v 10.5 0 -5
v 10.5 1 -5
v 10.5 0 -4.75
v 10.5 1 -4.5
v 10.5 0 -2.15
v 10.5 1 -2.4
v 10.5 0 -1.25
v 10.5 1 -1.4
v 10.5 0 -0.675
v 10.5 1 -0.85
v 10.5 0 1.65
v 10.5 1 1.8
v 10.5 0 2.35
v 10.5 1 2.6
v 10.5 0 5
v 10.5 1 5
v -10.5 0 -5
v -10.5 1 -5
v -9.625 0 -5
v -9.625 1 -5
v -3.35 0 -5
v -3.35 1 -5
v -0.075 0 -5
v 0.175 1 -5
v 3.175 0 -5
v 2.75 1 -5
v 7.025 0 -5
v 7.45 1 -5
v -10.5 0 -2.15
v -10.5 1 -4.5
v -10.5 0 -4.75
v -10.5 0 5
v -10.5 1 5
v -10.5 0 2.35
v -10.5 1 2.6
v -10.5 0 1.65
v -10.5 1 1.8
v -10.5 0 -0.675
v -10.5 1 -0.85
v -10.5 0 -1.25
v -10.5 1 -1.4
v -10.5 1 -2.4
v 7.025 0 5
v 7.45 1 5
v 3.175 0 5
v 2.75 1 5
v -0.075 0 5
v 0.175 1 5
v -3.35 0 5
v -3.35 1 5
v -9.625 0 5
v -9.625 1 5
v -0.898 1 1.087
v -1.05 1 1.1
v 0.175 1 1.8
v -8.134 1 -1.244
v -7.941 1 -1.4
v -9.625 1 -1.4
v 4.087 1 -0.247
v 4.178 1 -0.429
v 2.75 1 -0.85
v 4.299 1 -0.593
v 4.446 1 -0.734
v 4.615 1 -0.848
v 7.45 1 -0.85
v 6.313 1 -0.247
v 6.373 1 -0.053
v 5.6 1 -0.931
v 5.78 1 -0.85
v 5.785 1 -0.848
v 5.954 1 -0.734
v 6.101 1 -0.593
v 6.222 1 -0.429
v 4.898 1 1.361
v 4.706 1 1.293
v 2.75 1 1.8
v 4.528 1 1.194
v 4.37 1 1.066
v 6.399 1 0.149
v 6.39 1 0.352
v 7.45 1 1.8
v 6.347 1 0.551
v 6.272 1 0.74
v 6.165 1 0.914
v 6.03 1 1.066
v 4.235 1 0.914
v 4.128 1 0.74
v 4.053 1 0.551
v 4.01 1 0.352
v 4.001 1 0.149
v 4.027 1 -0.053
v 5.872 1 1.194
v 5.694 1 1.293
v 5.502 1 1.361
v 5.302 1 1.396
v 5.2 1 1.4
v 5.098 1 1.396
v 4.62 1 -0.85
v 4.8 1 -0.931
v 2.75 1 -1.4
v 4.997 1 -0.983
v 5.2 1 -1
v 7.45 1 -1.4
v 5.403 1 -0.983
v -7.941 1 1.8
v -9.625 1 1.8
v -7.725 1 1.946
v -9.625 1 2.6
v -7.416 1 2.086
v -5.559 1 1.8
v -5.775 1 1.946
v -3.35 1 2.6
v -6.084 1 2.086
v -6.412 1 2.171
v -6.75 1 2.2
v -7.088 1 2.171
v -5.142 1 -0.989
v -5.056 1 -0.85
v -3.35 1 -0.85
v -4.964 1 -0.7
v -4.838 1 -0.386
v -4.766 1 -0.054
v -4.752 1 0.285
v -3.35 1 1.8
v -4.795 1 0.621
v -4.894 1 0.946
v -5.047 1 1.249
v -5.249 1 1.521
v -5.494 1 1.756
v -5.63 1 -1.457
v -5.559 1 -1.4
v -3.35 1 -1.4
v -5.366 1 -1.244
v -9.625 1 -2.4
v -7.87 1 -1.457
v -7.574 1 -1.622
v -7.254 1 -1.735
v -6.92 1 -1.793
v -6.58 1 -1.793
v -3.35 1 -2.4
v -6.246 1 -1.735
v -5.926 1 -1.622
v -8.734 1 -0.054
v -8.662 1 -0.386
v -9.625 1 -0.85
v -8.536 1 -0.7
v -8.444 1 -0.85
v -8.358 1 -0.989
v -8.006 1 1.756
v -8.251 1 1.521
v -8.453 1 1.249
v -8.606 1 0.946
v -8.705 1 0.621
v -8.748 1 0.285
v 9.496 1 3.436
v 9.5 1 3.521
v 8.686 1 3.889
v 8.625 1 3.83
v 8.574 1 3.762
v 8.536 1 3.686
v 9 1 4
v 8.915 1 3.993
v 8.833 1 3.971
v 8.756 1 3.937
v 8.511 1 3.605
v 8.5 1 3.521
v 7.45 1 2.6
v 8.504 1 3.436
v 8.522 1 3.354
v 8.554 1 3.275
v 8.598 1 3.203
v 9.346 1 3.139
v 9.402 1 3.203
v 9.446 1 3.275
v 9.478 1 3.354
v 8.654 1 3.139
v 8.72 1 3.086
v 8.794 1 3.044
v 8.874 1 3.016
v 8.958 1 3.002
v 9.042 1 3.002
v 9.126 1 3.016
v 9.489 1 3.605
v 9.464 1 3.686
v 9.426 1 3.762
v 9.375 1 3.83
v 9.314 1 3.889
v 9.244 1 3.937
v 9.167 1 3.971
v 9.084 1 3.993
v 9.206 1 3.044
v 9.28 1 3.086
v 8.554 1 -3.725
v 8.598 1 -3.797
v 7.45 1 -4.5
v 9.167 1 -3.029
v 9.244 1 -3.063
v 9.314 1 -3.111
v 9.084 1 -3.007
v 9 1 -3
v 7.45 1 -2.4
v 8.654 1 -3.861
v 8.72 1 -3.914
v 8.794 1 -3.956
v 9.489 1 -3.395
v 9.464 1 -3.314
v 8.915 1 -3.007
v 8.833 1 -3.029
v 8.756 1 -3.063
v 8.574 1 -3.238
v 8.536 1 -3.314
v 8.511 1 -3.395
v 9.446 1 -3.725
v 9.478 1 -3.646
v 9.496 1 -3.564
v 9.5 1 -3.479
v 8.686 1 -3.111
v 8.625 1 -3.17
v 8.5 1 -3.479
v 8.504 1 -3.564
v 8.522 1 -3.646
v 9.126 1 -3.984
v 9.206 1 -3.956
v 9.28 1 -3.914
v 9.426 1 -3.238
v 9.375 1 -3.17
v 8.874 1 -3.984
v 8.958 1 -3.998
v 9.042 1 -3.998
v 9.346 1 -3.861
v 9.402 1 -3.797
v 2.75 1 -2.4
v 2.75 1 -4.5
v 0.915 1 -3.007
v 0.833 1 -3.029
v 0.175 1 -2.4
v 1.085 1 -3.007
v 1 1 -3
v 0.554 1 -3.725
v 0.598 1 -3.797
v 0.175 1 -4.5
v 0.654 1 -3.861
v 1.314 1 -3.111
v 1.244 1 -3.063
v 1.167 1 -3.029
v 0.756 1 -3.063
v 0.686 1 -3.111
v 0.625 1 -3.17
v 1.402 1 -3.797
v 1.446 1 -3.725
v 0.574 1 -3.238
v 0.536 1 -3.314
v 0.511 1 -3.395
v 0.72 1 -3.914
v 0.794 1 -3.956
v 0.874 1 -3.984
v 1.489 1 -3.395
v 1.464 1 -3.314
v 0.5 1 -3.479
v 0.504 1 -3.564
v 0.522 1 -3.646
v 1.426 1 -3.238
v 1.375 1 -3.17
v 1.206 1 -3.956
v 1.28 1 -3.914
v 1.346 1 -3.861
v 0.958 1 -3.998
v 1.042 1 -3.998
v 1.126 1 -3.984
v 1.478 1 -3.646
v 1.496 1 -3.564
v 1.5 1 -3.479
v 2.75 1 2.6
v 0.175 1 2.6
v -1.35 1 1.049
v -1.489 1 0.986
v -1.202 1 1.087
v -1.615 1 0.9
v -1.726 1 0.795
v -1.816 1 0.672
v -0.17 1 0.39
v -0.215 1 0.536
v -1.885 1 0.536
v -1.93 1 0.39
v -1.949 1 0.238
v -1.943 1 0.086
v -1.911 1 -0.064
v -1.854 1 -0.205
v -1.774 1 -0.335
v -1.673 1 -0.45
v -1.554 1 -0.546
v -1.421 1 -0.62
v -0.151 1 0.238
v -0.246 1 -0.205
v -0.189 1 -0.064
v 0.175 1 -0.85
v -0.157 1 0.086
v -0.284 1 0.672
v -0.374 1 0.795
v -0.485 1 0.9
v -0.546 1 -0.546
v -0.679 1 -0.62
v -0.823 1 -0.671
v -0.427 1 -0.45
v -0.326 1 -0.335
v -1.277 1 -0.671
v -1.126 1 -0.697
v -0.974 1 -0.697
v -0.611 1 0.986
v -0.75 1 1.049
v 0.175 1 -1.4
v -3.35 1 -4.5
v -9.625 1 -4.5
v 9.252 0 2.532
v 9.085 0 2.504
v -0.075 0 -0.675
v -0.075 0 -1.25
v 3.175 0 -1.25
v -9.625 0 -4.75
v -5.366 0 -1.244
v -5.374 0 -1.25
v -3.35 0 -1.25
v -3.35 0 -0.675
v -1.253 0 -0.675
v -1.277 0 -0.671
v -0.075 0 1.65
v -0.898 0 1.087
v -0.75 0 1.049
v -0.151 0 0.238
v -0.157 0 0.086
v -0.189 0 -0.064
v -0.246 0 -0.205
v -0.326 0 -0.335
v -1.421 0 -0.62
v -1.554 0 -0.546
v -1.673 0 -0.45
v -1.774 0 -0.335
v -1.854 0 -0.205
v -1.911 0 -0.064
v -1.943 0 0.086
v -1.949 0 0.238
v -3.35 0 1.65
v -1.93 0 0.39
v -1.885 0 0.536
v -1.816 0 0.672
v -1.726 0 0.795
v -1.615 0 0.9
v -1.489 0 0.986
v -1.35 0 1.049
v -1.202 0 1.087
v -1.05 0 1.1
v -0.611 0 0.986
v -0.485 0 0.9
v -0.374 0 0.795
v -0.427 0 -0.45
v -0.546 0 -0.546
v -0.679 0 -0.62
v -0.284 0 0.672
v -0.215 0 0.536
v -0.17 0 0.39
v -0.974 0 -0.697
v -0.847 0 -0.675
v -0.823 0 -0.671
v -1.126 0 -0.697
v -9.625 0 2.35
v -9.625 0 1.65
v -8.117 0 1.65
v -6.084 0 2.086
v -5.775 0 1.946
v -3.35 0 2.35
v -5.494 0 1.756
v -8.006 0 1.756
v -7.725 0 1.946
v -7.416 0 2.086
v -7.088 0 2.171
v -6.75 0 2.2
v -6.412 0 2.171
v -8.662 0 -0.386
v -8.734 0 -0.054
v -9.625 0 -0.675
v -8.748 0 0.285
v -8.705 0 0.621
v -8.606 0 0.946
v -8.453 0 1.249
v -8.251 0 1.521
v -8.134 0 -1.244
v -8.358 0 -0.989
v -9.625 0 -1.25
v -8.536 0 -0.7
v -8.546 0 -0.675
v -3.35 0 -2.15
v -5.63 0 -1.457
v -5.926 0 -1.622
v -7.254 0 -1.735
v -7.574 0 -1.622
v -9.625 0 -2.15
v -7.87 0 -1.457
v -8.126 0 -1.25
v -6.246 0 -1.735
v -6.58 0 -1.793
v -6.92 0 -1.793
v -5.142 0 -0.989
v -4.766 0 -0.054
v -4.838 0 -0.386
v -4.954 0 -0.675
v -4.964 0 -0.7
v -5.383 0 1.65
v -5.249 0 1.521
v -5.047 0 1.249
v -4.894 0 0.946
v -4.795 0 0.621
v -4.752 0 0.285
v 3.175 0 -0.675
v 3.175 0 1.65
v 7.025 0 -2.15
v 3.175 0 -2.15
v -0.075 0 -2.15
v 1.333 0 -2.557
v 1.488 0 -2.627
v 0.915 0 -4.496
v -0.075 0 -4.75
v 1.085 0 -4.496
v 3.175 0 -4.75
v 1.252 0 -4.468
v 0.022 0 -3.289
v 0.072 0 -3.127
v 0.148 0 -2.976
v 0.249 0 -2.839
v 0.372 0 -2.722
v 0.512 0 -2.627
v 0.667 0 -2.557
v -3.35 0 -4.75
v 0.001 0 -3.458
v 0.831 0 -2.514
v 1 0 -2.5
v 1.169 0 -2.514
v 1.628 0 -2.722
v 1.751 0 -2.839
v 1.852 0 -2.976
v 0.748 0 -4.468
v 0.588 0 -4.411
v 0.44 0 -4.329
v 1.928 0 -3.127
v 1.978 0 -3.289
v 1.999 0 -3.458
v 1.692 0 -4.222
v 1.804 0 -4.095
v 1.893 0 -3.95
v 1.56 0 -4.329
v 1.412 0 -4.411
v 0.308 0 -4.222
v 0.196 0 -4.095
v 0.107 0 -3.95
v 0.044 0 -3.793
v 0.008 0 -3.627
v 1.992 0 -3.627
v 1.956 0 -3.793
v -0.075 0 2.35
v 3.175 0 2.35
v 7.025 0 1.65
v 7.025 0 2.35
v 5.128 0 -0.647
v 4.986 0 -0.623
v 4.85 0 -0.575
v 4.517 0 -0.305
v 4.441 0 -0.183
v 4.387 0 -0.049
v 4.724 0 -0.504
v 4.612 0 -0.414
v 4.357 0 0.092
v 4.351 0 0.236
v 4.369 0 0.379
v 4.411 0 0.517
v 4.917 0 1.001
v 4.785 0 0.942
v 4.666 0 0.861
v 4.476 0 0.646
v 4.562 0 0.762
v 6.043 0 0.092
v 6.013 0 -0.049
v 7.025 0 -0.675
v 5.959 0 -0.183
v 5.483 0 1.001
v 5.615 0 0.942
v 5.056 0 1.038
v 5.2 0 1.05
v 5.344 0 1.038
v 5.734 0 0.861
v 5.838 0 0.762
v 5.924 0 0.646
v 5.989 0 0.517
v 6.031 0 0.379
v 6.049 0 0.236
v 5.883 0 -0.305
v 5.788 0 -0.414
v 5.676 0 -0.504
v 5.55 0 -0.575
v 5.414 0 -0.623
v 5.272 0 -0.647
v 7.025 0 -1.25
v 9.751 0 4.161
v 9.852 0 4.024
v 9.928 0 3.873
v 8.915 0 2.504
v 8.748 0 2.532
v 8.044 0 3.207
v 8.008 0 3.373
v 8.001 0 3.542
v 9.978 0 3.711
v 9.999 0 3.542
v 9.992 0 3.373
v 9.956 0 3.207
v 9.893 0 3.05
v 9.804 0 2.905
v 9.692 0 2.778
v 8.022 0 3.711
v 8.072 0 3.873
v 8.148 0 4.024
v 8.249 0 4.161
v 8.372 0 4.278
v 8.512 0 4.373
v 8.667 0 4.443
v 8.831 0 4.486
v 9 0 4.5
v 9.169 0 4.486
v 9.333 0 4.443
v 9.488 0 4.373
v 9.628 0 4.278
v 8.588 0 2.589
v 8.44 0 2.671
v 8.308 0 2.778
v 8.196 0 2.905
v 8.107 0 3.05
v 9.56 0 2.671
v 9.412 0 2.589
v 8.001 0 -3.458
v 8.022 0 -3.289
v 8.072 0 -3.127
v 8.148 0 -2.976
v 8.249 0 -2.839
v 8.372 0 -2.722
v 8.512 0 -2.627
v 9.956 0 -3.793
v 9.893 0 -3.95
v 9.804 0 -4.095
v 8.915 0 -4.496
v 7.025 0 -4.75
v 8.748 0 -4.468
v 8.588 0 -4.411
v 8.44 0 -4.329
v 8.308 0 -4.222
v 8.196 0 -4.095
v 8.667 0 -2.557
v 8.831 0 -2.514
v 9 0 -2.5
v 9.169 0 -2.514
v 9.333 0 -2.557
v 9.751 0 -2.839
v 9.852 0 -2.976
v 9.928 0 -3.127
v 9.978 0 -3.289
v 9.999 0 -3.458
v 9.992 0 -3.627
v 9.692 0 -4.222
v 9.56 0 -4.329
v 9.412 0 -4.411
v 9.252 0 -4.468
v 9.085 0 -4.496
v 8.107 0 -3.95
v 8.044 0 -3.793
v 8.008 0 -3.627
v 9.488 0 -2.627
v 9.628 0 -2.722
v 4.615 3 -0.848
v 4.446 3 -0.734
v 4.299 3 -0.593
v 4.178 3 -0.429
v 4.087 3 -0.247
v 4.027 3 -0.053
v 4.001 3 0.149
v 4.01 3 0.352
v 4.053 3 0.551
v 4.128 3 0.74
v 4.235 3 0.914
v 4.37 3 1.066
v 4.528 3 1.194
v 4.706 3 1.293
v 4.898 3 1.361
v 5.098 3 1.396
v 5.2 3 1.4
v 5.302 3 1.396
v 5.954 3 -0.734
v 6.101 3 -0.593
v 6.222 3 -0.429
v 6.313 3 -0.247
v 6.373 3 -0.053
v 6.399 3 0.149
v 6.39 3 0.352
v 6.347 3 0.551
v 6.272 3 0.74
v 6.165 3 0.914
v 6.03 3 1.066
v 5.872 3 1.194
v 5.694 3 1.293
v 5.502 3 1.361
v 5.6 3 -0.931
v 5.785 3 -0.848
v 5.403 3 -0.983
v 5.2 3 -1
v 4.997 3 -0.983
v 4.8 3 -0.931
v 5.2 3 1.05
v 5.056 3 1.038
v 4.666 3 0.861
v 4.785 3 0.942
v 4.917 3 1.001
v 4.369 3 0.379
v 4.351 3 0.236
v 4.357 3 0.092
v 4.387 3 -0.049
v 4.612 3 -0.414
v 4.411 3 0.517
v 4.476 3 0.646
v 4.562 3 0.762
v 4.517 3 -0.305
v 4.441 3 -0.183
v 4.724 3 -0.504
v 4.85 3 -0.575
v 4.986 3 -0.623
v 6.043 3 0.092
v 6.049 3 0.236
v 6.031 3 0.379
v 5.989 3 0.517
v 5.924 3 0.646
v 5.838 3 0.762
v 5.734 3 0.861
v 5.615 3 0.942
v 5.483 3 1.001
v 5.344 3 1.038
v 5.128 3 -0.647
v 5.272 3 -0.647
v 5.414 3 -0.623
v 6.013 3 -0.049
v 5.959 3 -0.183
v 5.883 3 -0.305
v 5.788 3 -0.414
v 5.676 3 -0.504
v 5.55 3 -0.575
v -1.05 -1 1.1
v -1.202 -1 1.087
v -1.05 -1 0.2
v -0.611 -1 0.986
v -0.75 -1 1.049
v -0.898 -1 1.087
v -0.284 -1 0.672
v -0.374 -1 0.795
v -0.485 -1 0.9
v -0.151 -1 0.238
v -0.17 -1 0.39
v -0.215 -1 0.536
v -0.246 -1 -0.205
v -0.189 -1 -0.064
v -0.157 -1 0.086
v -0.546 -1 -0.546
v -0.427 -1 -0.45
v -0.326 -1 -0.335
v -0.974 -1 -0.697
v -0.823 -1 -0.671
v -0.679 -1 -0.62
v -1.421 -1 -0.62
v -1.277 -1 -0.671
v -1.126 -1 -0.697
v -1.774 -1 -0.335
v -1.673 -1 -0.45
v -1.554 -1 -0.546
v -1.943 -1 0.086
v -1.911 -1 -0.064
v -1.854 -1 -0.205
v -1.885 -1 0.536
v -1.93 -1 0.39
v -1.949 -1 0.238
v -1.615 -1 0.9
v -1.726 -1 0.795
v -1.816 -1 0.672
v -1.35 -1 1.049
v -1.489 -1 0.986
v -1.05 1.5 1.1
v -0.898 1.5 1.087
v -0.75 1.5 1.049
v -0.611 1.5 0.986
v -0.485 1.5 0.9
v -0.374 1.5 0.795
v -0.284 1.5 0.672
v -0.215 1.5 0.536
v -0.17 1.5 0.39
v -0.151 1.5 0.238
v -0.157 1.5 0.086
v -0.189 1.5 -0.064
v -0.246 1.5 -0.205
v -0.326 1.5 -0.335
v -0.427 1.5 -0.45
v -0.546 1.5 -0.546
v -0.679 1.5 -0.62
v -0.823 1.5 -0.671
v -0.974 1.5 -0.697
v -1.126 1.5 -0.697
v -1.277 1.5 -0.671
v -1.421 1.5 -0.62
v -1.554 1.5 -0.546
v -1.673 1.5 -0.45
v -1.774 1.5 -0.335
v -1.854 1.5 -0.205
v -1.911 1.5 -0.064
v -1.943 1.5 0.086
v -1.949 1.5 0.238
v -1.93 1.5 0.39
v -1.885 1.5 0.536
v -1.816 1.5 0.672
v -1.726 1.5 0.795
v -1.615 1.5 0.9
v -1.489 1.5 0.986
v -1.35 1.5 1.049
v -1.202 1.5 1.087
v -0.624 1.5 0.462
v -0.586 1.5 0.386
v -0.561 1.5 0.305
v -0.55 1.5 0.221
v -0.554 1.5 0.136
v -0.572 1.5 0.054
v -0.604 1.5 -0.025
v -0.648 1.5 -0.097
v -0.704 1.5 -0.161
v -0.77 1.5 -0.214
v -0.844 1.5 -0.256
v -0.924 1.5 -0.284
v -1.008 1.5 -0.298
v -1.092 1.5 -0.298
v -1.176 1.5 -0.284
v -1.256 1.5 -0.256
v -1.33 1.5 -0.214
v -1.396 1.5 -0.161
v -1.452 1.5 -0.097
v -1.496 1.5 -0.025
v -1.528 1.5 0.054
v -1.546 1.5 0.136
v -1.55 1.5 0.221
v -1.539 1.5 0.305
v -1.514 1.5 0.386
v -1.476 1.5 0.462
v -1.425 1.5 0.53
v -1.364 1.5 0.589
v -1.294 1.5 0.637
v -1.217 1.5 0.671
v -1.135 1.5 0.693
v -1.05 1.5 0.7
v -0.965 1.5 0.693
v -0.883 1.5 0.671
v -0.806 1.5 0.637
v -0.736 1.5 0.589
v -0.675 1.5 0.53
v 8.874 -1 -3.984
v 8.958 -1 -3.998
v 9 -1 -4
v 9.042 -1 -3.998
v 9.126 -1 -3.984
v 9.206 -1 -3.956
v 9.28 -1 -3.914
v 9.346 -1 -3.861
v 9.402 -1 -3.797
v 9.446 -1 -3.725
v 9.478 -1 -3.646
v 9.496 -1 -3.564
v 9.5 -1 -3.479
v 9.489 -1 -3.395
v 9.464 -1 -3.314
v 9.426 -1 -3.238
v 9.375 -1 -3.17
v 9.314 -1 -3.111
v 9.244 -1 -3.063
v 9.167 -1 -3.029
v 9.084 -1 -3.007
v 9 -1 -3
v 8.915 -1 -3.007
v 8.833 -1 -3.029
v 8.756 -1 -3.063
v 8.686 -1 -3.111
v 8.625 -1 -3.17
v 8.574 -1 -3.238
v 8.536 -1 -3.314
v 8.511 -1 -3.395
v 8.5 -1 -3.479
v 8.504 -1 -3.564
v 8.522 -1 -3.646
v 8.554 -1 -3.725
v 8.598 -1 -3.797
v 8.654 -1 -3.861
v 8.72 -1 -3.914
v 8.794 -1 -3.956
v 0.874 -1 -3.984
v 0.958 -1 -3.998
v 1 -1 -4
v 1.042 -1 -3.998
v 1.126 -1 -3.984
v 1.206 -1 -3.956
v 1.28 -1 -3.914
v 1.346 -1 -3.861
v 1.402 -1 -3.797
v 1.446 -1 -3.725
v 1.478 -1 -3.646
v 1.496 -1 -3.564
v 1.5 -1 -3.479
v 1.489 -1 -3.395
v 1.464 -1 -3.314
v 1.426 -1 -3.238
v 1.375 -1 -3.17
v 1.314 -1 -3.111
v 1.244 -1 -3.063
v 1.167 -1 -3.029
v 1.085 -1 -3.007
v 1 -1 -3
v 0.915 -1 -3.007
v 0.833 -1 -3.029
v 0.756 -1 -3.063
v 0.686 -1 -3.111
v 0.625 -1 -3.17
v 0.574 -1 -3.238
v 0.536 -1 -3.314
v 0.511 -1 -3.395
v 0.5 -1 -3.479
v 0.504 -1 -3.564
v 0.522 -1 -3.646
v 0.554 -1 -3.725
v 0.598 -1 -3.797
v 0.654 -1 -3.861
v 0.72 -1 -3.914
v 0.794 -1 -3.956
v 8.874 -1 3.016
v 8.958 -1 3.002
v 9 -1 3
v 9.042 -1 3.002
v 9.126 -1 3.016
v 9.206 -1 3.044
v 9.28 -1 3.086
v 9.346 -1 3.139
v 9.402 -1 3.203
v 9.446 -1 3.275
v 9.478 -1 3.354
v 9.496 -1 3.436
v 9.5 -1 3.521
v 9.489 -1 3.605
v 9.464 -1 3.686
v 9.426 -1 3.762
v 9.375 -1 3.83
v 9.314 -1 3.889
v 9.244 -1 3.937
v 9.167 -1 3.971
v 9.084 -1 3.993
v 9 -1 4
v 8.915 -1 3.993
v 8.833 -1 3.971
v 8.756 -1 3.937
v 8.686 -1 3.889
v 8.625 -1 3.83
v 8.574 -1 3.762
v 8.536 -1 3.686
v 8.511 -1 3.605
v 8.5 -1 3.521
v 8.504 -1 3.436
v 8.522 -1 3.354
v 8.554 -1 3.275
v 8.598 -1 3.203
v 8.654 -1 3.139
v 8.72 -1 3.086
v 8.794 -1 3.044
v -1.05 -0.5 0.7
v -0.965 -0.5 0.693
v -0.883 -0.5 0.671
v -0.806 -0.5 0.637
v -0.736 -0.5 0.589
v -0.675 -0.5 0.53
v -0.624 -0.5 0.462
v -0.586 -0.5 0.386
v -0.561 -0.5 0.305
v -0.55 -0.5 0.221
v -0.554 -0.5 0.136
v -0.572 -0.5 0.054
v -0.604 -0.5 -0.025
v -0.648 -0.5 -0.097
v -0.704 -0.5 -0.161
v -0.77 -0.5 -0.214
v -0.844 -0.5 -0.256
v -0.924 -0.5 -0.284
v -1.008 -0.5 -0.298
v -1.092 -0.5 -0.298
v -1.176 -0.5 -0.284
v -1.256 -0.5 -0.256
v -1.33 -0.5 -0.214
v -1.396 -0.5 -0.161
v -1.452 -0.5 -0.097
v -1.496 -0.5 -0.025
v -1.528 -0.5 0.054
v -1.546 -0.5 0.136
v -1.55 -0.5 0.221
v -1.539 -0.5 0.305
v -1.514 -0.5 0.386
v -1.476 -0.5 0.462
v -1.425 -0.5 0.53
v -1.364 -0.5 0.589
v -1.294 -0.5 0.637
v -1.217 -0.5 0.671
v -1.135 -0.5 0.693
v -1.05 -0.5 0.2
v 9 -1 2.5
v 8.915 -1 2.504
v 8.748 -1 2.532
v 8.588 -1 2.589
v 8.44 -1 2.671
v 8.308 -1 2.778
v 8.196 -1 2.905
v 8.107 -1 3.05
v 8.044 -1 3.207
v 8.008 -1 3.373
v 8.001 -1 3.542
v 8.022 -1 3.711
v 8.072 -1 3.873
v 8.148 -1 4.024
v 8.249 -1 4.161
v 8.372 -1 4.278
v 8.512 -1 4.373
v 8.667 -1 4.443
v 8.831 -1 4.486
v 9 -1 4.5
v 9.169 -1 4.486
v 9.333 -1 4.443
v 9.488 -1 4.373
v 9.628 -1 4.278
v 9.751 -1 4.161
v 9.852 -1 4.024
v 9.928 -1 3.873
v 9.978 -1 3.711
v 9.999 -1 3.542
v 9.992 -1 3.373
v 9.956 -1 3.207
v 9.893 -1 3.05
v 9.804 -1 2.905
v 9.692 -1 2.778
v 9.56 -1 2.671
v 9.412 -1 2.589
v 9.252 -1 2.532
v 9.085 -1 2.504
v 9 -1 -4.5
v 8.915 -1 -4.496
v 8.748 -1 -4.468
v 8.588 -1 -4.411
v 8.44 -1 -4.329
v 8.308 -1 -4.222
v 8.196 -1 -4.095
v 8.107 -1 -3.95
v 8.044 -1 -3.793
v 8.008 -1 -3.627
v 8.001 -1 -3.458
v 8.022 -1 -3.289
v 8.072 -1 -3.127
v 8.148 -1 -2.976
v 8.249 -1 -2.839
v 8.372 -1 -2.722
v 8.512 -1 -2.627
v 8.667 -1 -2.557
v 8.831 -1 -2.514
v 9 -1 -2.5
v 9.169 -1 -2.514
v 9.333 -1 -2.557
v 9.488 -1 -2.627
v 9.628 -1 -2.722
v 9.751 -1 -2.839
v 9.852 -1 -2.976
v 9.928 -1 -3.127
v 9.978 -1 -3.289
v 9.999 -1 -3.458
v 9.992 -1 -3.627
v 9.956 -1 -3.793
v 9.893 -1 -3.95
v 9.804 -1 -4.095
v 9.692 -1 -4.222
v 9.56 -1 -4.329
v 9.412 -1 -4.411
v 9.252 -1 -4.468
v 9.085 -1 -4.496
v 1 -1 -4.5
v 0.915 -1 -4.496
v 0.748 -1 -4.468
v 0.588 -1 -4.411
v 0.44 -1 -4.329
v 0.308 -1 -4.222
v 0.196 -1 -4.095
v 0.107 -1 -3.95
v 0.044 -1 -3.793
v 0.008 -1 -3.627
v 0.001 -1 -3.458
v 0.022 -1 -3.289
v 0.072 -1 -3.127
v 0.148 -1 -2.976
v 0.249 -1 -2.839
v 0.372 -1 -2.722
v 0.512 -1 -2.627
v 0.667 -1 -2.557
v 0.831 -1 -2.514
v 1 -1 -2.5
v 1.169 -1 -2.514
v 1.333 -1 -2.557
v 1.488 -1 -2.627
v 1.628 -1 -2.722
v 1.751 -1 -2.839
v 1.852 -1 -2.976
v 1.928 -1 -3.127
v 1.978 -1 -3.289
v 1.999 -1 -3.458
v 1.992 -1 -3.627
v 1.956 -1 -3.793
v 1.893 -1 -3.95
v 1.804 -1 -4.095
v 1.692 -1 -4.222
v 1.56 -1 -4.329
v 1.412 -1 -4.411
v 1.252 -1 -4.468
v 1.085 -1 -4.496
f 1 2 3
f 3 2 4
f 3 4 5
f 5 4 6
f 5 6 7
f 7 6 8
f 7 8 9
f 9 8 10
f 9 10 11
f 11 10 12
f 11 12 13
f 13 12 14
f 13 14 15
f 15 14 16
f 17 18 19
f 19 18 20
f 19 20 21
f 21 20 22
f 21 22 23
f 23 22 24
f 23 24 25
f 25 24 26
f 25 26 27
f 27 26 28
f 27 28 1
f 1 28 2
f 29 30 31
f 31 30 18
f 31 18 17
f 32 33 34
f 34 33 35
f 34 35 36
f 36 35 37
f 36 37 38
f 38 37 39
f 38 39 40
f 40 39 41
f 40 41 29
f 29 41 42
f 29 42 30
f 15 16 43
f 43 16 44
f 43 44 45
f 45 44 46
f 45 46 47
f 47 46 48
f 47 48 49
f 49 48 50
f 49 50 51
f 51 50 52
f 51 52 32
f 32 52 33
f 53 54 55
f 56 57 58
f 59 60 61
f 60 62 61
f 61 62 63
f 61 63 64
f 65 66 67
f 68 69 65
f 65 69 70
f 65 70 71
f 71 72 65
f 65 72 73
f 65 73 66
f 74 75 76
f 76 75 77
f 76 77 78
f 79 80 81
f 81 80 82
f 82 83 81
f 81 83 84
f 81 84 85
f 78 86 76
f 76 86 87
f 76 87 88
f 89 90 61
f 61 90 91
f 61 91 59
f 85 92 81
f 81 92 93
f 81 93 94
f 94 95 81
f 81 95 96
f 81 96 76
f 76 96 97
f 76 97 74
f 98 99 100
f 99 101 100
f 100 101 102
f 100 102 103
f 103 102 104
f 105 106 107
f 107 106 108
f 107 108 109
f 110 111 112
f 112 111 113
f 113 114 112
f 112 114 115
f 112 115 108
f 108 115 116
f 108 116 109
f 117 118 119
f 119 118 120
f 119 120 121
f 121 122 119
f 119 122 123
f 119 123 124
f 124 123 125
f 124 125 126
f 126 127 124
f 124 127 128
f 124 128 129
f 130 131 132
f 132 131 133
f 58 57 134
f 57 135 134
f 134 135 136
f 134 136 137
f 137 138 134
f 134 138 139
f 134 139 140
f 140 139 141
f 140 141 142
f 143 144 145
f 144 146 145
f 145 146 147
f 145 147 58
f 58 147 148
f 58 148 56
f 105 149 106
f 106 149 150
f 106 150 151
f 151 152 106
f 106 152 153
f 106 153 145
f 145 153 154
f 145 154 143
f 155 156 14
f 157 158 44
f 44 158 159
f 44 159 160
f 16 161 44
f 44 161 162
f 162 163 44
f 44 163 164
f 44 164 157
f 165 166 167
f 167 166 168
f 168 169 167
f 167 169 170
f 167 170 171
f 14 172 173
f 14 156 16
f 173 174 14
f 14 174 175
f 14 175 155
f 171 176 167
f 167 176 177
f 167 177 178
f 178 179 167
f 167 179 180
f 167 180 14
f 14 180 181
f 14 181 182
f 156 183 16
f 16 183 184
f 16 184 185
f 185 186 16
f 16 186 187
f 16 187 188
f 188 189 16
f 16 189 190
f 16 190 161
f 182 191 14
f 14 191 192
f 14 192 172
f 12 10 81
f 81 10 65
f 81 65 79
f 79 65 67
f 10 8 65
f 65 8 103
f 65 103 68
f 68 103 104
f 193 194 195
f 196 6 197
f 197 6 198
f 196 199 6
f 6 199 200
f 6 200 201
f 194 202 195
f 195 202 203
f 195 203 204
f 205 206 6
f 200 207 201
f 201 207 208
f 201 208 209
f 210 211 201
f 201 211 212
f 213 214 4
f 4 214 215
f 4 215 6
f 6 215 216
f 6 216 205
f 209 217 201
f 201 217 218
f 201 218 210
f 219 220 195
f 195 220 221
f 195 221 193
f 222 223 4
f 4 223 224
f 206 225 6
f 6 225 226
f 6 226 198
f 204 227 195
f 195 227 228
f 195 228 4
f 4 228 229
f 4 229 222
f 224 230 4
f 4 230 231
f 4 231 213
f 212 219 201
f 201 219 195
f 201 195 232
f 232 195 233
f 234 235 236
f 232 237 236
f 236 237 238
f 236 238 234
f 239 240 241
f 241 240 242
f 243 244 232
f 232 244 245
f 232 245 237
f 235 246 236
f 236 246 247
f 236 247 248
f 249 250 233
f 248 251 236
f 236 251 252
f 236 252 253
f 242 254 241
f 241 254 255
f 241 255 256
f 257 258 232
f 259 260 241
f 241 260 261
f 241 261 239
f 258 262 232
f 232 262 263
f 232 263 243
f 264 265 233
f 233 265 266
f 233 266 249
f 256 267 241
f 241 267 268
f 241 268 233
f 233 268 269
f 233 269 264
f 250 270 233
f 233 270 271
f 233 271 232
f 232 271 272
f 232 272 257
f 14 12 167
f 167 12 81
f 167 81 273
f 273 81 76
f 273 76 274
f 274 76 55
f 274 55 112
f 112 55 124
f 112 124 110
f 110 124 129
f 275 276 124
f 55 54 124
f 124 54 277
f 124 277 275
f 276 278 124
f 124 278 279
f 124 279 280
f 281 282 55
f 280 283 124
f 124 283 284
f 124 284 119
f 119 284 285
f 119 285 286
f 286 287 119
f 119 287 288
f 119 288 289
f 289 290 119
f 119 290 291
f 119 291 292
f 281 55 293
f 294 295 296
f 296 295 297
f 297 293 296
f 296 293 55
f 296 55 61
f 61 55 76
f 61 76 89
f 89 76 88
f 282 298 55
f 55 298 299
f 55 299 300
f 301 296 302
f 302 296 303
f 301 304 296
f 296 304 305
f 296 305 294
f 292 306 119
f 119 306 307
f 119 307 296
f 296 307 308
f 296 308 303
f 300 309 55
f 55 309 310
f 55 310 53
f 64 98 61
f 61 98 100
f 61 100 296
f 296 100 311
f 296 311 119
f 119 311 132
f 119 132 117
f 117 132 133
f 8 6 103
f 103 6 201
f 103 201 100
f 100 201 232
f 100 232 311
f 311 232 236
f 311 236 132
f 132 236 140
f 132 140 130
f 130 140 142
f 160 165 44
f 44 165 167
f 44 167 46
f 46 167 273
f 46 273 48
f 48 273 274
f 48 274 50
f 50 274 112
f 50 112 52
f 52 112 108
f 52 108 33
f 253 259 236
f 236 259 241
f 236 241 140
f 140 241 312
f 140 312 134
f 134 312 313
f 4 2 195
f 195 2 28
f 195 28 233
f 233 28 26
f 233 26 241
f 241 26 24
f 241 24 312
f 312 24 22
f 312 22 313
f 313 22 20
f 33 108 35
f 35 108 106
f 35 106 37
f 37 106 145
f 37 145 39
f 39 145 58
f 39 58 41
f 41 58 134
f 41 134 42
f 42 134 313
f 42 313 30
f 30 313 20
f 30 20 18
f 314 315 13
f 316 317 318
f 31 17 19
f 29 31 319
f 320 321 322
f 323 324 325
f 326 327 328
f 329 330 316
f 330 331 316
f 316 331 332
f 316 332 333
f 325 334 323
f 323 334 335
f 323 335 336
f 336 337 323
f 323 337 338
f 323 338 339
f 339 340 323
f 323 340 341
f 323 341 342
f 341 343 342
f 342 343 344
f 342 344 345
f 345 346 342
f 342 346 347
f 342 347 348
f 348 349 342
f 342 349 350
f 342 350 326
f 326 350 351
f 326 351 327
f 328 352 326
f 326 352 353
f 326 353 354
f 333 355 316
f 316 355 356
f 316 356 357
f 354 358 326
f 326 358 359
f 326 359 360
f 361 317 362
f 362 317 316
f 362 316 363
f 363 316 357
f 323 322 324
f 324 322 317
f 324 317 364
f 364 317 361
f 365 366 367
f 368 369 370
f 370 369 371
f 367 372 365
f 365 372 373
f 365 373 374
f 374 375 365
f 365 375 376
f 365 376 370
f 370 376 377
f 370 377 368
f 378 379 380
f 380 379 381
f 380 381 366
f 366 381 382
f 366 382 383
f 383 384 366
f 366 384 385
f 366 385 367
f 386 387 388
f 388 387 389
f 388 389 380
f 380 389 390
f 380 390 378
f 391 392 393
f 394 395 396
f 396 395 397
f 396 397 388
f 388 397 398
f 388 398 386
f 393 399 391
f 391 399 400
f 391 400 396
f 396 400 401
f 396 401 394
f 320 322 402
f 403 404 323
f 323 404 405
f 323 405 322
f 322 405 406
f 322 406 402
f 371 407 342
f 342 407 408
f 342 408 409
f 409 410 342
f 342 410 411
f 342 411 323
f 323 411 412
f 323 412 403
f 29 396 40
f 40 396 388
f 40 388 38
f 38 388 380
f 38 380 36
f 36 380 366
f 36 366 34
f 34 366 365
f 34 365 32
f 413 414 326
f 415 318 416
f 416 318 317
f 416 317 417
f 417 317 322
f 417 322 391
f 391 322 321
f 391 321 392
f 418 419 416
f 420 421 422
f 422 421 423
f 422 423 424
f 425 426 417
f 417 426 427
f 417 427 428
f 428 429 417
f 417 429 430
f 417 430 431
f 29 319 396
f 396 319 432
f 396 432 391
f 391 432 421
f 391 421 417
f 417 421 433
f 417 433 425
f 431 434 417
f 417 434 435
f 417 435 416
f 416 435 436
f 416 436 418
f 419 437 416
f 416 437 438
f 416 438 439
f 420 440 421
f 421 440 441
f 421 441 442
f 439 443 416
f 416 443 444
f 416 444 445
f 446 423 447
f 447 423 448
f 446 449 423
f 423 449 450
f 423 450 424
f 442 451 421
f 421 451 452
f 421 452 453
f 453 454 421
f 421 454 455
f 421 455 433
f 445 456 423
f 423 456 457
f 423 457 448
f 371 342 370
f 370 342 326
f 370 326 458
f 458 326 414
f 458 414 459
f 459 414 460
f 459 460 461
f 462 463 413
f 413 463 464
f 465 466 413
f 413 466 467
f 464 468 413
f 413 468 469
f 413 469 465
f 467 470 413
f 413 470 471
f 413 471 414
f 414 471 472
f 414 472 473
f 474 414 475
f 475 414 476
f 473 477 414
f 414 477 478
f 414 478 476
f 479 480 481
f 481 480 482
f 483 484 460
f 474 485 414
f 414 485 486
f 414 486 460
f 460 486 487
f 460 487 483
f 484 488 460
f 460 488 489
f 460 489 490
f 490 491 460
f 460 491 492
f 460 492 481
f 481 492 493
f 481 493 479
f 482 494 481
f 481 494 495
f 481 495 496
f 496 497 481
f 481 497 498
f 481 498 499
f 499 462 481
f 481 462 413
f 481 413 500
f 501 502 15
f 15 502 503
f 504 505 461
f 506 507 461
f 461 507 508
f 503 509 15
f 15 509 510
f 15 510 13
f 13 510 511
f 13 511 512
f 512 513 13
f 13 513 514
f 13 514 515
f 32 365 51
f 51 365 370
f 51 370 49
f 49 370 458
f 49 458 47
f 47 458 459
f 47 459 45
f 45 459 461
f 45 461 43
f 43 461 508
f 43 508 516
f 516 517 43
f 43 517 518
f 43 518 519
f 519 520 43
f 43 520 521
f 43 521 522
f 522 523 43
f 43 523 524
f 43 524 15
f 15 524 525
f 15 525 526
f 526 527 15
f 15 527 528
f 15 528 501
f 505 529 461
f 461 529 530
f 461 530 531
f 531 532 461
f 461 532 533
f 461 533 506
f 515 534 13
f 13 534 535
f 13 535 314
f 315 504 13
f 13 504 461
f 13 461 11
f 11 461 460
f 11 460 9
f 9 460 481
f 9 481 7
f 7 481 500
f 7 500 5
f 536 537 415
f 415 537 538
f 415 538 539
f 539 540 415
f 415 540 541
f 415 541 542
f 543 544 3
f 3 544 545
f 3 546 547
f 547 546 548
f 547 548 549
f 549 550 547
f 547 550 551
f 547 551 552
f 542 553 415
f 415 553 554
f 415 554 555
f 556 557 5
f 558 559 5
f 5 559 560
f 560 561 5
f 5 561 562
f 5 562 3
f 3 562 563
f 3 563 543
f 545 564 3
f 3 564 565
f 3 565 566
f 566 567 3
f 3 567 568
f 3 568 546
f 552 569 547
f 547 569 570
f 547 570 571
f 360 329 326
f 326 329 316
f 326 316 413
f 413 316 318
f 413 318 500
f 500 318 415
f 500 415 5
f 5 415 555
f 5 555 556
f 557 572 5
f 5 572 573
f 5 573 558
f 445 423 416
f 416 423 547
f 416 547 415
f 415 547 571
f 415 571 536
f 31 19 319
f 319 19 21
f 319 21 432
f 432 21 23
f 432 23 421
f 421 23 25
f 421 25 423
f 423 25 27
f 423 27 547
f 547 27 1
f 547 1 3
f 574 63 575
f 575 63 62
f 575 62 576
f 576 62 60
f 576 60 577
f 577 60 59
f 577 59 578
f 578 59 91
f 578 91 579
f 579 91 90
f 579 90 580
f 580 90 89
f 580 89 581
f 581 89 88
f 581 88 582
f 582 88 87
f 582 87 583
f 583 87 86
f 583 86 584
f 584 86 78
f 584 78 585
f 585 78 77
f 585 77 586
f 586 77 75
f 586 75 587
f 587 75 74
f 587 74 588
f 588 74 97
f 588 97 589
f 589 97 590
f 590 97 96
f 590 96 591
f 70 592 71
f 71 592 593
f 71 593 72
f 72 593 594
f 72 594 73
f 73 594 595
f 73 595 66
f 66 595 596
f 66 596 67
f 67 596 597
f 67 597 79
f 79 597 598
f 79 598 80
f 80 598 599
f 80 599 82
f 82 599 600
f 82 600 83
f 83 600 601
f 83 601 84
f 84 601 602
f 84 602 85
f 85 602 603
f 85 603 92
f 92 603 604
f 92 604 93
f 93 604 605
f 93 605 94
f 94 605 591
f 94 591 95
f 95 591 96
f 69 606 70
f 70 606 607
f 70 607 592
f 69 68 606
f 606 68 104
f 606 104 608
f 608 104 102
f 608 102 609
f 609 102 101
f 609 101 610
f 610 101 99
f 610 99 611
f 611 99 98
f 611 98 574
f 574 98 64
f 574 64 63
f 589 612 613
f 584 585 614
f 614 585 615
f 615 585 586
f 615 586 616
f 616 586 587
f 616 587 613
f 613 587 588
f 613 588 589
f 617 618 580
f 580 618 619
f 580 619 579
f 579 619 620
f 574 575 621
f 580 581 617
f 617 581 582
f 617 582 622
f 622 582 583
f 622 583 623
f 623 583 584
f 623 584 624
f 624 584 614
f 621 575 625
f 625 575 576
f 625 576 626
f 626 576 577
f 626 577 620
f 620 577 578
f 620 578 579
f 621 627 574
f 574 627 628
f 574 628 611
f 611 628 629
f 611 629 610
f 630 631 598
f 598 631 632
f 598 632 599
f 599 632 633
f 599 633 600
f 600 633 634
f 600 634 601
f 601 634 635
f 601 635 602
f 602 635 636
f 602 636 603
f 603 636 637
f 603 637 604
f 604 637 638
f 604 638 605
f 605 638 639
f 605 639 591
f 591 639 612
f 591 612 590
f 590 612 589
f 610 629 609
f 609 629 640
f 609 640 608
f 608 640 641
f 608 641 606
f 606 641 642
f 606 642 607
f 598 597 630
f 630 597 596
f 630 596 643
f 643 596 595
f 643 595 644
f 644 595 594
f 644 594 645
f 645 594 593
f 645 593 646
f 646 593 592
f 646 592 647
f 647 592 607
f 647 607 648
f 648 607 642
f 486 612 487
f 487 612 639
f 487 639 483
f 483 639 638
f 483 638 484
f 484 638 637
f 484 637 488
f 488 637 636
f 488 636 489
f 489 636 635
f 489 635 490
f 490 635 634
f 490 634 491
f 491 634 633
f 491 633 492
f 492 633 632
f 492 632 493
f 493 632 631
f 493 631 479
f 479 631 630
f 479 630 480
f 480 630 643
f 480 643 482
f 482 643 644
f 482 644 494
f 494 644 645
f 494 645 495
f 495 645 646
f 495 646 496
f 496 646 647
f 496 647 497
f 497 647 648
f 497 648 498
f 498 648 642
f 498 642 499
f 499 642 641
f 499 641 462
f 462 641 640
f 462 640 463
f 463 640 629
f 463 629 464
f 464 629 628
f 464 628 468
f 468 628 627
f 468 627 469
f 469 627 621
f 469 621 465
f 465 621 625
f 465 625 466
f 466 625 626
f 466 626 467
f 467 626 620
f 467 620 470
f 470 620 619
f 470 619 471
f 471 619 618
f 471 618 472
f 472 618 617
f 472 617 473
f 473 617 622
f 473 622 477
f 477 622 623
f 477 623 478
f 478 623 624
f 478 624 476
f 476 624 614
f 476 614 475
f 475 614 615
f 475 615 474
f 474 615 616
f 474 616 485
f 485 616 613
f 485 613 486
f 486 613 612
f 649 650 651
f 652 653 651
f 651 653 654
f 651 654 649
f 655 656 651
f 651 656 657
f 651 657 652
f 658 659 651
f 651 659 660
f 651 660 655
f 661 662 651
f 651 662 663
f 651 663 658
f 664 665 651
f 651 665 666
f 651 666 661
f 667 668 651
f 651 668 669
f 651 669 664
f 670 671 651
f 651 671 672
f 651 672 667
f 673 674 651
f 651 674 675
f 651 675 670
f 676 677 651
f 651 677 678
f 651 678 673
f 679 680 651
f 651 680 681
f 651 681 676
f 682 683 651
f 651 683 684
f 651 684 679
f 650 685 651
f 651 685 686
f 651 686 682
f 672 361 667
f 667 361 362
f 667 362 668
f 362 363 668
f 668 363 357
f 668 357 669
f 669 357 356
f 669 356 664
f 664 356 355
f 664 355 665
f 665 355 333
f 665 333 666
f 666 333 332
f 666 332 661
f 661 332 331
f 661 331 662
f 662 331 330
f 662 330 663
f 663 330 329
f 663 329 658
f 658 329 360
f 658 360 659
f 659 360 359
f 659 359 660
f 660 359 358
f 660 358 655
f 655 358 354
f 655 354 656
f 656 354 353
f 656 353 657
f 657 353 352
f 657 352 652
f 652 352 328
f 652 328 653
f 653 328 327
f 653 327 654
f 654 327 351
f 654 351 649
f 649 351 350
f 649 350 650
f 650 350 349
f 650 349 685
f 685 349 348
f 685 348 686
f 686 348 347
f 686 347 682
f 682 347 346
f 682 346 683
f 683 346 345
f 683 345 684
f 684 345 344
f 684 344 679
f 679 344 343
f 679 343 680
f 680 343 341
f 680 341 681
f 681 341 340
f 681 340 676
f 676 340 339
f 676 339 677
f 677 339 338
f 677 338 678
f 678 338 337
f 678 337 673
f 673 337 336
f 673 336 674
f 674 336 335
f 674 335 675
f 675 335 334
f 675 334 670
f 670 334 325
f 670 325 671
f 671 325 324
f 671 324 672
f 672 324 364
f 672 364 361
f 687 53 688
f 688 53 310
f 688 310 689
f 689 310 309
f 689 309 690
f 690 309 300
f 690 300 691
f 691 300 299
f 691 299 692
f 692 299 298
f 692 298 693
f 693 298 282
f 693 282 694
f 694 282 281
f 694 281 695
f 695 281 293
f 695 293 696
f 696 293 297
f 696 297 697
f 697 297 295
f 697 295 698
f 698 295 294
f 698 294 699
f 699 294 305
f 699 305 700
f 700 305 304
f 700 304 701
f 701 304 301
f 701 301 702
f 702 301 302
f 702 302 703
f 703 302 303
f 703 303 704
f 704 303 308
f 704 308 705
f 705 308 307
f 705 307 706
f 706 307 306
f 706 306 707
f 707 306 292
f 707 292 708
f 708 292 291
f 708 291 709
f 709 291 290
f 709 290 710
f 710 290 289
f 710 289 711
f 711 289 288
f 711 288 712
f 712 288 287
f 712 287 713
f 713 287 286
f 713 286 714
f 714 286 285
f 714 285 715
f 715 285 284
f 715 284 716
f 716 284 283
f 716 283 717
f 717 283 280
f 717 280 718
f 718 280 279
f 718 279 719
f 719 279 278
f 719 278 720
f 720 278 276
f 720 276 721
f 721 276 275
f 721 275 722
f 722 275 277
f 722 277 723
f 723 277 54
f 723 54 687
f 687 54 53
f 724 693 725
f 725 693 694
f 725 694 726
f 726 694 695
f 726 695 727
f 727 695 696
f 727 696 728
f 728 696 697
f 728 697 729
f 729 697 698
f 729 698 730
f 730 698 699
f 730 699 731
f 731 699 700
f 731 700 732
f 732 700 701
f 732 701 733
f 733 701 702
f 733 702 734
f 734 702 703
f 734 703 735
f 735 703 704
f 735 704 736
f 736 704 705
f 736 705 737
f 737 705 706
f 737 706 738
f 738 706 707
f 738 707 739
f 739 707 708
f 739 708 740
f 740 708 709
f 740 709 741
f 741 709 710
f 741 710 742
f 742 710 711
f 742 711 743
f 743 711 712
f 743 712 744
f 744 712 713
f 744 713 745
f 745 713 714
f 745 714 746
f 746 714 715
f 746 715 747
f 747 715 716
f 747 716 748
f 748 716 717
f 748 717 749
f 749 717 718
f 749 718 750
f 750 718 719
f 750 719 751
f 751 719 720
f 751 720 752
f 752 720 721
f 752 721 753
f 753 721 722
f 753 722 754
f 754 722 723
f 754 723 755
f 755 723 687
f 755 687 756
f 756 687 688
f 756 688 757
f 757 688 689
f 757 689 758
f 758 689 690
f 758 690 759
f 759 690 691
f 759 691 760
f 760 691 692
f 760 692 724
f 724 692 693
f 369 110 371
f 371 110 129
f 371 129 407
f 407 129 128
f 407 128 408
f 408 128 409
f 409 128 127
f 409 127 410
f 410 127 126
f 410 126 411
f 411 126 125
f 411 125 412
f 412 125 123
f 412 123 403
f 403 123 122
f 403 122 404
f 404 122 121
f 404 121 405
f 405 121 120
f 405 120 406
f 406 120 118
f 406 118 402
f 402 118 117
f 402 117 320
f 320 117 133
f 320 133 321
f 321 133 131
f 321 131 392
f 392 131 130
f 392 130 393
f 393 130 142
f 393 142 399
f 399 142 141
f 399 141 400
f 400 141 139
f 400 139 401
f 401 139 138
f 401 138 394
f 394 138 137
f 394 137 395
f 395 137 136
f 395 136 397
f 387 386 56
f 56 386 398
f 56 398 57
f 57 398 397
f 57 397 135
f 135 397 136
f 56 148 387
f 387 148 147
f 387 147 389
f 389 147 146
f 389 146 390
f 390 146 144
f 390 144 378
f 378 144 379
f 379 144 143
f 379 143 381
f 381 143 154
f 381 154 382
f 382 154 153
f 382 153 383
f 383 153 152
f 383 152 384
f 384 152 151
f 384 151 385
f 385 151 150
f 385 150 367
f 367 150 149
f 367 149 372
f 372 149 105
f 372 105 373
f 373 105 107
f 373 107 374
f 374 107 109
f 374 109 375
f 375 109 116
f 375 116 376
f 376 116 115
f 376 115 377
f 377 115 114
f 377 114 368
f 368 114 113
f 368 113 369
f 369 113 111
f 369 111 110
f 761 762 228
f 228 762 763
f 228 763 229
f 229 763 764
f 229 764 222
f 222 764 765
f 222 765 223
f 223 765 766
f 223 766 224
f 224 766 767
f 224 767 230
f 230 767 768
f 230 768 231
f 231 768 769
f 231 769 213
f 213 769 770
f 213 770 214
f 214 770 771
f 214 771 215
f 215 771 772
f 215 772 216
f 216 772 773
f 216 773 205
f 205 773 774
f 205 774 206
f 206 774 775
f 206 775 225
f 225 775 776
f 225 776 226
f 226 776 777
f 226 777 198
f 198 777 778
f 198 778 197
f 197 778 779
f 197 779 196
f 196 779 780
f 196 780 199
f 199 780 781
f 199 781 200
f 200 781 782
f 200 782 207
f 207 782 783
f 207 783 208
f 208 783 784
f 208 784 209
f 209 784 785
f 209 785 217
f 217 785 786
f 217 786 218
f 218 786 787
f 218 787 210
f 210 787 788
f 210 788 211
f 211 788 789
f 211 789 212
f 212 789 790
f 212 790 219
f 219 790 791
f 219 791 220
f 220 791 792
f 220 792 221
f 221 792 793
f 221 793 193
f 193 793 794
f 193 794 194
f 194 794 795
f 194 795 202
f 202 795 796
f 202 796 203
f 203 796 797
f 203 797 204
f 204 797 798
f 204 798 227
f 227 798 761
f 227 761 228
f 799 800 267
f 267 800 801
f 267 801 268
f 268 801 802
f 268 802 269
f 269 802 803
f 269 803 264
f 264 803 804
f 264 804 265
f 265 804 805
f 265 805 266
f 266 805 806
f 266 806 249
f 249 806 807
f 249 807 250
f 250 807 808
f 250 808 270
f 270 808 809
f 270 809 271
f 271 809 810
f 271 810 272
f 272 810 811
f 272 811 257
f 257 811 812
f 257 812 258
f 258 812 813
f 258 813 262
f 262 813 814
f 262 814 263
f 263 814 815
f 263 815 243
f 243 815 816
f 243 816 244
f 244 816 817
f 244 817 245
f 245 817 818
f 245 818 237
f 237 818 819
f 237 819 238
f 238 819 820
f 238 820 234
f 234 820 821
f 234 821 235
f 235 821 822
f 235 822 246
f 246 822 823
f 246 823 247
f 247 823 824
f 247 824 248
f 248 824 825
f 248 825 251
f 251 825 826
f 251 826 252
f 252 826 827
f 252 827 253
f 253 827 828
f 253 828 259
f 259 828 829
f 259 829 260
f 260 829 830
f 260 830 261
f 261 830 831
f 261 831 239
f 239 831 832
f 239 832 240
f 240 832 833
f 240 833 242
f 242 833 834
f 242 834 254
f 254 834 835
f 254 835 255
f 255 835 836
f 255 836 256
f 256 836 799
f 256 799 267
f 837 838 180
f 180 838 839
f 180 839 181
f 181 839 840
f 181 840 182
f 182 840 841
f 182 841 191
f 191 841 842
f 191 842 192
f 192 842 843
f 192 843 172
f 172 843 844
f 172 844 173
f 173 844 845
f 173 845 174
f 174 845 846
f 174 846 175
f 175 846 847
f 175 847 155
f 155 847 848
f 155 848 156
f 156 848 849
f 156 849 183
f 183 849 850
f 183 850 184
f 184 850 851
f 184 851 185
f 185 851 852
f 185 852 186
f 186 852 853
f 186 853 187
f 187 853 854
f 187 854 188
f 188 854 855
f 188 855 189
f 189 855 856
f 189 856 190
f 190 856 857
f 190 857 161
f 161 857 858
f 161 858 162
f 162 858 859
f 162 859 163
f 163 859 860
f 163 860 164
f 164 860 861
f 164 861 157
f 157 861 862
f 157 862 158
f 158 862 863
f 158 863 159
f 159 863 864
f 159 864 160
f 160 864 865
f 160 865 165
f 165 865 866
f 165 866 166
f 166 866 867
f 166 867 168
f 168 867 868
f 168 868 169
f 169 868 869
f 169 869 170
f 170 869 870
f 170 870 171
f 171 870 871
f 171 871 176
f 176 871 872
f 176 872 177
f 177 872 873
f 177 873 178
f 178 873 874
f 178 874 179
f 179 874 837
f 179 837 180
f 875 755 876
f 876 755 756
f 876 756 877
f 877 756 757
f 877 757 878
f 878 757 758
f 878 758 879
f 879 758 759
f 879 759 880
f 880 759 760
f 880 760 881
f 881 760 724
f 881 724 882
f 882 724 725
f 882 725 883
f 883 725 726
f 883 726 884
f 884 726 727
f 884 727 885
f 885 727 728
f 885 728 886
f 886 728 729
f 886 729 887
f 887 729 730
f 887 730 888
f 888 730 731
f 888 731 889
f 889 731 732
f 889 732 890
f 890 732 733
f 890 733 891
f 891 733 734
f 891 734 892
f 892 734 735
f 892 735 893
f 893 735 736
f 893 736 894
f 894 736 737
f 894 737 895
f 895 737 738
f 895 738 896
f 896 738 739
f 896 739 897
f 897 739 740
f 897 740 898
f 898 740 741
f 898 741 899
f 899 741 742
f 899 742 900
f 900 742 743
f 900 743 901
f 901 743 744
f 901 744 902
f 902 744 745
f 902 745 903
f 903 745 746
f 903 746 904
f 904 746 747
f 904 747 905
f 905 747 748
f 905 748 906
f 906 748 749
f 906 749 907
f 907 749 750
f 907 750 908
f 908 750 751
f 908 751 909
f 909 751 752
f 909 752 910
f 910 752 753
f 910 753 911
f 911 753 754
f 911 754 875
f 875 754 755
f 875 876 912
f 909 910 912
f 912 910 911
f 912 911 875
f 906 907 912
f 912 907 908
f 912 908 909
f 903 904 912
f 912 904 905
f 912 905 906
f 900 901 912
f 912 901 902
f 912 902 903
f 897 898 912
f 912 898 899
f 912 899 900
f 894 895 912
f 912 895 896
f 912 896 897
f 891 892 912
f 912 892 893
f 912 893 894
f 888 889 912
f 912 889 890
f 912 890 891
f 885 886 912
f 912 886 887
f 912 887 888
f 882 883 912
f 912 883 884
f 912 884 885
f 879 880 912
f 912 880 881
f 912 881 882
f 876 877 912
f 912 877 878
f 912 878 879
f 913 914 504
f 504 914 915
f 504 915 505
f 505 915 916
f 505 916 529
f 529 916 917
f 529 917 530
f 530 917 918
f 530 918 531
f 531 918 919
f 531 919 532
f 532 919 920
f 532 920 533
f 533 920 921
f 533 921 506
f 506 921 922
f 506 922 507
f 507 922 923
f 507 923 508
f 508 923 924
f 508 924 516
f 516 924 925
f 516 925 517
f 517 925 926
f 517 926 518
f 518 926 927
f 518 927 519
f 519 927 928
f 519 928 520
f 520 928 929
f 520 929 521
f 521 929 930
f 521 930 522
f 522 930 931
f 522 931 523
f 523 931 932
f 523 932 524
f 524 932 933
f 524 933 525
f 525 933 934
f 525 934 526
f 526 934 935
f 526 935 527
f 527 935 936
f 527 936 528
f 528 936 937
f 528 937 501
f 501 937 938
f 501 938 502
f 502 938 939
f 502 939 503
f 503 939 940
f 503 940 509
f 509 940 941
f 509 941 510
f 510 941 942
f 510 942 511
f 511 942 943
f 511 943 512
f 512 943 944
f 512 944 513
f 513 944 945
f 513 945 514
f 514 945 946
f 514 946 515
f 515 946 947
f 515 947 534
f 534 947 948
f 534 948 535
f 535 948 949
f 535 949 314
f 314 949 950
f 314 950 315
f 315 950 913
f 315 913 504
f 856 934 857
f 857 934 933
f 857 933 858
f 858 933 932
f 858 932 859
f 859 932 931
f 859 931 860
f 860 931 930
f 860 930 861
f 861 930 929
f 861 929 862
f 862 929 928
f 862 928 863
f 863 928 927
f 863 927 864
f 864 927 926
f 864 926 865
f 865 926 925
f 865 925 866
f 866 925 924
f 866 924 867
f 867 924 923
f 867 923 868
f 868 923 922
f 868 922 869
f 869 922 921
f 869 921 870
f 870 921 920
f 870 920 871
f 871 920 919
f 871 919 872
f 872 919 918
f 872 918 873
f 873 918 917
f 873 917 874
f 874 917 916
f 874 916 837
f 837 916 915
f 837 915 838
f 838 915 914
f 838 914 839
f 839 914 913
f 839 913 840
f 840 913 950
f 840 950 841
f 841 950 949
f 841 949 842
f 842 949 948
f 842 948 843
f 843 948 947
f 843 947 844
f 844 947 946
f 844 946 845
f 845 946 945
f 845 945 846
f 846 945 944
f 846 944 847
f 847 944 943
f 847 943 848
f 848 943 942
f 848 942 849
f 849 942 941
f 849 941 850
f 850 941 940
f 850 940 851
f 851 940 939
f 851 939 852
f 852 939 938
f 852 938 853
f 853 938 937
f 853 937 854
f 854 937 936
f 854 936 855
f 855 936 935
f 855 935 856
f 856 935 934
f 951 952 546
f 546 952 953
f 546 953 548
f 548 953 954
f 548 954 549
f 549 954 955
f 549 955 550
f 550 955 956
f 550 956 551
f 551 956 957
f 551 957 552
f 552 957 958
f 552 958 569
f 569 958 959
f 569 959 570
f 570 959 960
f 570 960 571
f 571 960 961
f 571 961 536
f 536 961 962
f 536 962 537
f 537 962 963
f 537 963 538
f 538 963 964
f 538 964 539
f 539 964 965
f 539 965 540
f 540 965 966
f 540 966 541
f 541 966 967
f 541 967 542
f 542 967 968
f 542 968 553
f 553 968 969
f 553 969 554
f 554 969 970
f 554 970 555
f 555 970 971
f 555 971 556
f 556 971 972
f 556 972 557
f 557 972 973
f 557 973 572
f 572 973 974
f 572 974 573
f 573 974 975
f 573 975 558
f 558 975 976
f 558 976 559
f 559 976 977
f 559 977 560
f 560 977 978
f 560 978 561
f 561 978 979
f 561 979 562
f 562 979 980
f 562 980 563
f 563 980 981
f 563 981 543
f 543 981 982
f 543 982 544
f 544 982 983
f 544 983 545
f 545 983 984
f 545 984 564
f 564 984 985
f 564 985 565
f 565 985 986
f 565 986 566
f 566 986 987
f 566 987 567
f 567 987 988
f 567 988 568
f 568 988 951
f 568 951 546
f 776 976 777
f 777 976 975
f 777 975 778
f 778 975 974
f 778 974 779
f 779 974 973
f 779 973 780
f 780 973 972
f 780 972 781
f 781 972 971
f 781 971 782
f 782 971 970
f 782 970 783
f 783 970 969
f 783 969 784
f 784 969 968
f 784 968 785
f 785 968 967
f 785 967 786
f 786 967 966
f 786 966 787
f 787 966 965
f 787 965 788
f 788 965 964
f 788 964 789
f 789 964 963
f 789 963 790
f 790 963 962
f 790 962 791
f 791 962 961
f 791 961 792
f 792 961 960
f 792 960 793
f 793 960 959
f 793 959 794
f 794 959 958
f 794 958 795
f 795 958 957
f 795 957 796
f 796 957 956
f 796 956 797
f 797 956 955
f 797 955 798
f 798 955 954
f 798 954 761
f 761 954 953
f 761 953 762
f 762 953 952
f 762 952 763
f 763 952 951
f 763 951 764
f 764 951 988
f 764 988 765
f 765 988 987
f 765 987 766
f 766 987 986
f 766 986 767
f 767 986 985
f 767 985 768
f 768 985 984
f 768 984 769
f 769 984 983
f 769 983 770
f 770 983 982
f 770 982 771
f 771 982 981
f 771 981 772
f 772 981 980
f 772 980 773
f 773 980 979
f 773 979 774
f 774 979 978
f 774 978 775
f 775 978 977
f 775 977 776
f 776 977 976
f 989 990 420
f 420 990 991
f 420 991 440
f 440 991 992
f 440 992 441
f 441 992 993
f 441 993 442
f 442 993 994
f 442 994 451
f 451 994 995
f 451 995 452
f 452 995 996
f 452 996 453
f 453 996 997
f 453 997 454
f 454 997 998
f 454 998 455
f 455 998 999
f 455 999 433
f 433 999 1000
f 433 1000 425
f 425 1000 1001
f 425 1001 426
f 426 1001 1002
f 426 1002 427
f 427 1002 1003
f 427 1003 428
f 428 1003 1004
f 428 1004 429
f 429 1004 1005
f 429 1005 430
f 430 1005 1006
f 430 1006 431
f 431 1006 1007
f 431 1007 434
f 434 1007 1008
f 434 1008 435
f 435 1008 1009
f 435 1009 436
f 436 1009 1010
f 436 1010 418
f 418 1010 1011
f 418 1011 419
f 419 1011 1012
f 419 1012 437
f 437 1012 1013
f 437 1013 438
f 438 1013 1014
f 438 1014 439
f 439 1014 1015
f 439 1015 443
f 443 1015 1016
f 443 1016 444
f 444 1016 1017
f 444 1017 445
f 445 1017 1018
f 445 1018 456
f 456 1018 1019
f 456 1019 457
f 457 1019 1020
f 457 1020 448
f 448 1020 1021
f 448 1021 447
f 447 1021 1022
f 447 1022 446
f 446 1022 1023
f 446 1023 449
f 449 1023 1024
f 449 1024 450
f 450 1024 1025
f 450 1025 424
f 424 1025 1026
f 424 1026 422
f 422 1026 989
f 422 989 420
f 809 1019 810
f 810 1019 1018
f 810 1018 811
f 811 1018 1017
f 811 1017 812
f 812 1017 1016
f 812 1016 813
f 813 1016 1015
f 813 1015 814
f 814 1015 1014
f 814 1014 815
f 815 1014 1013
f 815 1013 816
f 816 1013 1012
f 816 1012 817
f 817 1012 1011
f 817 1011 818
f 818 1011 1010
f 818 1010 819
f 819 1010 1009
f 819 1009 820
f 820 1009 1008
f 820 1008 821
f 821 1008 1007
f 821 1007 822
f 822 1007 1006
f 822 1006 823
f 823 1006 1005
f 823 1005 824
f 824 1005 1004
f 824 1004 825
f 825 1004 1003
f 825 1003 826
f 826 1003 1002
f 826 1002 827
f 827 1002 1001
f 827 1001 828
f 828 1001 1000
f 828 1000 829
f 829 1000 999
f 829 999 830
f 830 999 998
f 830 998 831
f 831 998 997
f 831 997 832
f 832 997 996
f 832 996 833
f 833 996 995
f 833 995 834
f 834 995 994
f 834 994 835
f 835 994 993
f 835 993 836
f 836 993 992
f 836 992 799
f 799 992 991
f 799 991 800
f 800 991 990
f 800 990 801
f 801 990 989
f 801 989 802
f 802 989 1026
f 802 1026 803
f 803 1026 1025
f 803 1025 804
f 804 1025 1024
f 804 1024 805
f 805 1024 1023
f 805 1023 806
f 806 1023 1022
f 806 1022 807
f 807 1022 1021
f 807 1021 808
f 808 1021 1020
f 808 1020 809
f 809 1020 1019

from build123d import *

# Parameters (mm, degrees)
SKETCH_1_W           = 21
SKETCH_1_H           = 10
EXTRUDE_1_DEPTH      = 1
SKETCH_2_R           = 1.2
EXTRUDE_2_DEPTH      = 2
SKETCH_3_R           = 0.85
CUT_EXTRUDE_2_DEPTH  = 3
EXTRUDE_3_DEPTH      = 0.5
EXTRUDE_3_DEPTH_BACK = 2
SKETCH_5_R           = 0.9
SKETCH_7_R           = 2
CUT_EXTRUDE_4_DEPTH  = 1
SKETCH_8_R           = 0.5
CUT_EXTRUDE_5_DEPTH  = 1
SKETCH_9_R           = 0.5
CUT_EXTRUDE_6_DEPTH  = 2
SKETCH_10_R          = 1
EXTRUDE_4_DEPTH      = 1
CUT_EXTRUDE_START    = -1
SKETCH_11_R          = 0.5
CUT_EXTRUDE_7_DEPTH  = 1


with BuildPart() as part:
    # 草图1 → 凸台-拉伸1 (new body)
    with BuildSketch(Plane(origin=(0, 0, 0), x_dir=(1, 0, 0), z_dir=(0, 1, 0))):
        Rectangle(SKETCH_1_W, SKETCH_1_H)
    extrude(amount=EXTRUDE_1_DEPTH)

    # 草图2 → 凸台-拉伸2 (add)
    with BuildSketch(Plane(origin=(0, 1, 0), x_dir=(1, 0, 0), z_dir=(0, 1, 0))):
        with Locations(Location((5.2, -0.2, 0), (0, 0, 270))):
            Circle(SKETCH_2_R)
    extrude(amount=EXTRUDE_2_DEPTH)

    # 草图3 → 切除-拉伸2 (cut)
    with BuildSketch(Plane(origin=(0, 3, 0), x_dir=(1, 0, 0), z_dir=(0, 1, 0))):
        with Locations(Location((5.2, -0.2, 0), (0, 0, 270))):
            Circle(SKETCH_3_R)
    extrude(amount=-CUT_EXTRUDE_2_DEPTH, mode=Mode.SUBTRACT)

    # 草图5 → 凸台-拉伸3 (add, two sides: drawn at the far end of the back side and taken through both)
    with BuildSketch(Plane(origin=(0, 1, 0), x_dir=(1, 0, 0), z_dir=(0, 1, 0)).offset(-EXTRUDE_3_DEPTH_BACK)):
        with Locations(Location((-1.05, -0.2, 0), (0, 0, 270))):
            Circle(SKETCH_5_R)
    extrude(amount=EXTRUDE_3_DEPTH + EXTRUDE_3_DEPTH_BACK)

    # 草图7 → 切除-拉伸4 (cut)
    with BuildSketch(Plane(origin=(0, 1, 0), x_dir=(1, 0, 0), z_dir=(0, 1, 0))):
        with Locations(Location((-6.75, -0.2, 0), (0, 0, 270))):
            Circle(SKETCH_7_R)
    extrude(amount=-CUT_EXTRUDE_4_DEPTH, mode=Mode.SUBTRACT)

    # 草图8 → 切除-拉伸5 (cut)
    with BuildSketch(Plane(origin=(0, 1, 0), x_dir=(1, 0, 0), z_dir=(0, 1, 0))):
        with Locations(Location((9, 3.5, 0), (0, 0, 270))):
            Circle(SKETCH_8_R)
        with Locations(Location((1, 3.5, 0), (0, 0, 270))):
            Circle(SKETCH_8_R)
        with Locations(Location((9, -3.5, 0), (0, 0, 270))):
            Circle(SKETCH_8_R)
    extrude(amount=-CUT_EXTRUDE_5_DEPTH, mode=Mode.SUBTRACT)

    # 草图9 → 切除-拉伸6 (cut)
    with BuildSketch(Plane(origin=(0, 1.5, 0), x_dir=(1, 0, 0), z_dir=(0, 1, 0))):
        with Locations(Location((-1.05, -0.2, 0), (0, 0, 270))):
            Circle(SKETCH_9_R)
    extrude(amount=-CUT_EXTRUDE_6_DEPTH, mode=Mode.SUBTRACT)

    # 草图10 → 凸台-拉伸4 (add)
    with BuildSketch(Plane.XZ):
        with Locations(Location((9, 3.5, 0), (0, 0, 90))):
            Circle(SKETCH_10_R)
        with Locations(Location((9, -3.5, 0), (0, 0, 90))):
            Circle(SKETCH_10_R)
        with Locations(Location((1, -3.5, 0), (0, 0, 90))):
            Circle(SKETCH_10_R)
    extrude(amount=EXTRUDE_4_DEPTH)

    # 草图11 → 切除-拉伸7 (cut)
    with BuildSketch(Plane.XZ.offset(1).offset(CUT_EXTRUDE_START)):
        with Locations(Location((9, 3.5, 0), (0, 0, 90))):
            Circle(SKETCH_11_R)
        with Locations(Location((9, -3.5, 0), (0, 0, 90))):
            Circle(SKETCH_11_R)
        with Locations(Location((1, -3.5, 0), (0, 0, 90))):
            Circle(SKETCH_11_R)
    extrude(amount=CUT_EXTRUDE_7_DEPTH, mode=Mode.SUBTRACT)


solid = part.part
